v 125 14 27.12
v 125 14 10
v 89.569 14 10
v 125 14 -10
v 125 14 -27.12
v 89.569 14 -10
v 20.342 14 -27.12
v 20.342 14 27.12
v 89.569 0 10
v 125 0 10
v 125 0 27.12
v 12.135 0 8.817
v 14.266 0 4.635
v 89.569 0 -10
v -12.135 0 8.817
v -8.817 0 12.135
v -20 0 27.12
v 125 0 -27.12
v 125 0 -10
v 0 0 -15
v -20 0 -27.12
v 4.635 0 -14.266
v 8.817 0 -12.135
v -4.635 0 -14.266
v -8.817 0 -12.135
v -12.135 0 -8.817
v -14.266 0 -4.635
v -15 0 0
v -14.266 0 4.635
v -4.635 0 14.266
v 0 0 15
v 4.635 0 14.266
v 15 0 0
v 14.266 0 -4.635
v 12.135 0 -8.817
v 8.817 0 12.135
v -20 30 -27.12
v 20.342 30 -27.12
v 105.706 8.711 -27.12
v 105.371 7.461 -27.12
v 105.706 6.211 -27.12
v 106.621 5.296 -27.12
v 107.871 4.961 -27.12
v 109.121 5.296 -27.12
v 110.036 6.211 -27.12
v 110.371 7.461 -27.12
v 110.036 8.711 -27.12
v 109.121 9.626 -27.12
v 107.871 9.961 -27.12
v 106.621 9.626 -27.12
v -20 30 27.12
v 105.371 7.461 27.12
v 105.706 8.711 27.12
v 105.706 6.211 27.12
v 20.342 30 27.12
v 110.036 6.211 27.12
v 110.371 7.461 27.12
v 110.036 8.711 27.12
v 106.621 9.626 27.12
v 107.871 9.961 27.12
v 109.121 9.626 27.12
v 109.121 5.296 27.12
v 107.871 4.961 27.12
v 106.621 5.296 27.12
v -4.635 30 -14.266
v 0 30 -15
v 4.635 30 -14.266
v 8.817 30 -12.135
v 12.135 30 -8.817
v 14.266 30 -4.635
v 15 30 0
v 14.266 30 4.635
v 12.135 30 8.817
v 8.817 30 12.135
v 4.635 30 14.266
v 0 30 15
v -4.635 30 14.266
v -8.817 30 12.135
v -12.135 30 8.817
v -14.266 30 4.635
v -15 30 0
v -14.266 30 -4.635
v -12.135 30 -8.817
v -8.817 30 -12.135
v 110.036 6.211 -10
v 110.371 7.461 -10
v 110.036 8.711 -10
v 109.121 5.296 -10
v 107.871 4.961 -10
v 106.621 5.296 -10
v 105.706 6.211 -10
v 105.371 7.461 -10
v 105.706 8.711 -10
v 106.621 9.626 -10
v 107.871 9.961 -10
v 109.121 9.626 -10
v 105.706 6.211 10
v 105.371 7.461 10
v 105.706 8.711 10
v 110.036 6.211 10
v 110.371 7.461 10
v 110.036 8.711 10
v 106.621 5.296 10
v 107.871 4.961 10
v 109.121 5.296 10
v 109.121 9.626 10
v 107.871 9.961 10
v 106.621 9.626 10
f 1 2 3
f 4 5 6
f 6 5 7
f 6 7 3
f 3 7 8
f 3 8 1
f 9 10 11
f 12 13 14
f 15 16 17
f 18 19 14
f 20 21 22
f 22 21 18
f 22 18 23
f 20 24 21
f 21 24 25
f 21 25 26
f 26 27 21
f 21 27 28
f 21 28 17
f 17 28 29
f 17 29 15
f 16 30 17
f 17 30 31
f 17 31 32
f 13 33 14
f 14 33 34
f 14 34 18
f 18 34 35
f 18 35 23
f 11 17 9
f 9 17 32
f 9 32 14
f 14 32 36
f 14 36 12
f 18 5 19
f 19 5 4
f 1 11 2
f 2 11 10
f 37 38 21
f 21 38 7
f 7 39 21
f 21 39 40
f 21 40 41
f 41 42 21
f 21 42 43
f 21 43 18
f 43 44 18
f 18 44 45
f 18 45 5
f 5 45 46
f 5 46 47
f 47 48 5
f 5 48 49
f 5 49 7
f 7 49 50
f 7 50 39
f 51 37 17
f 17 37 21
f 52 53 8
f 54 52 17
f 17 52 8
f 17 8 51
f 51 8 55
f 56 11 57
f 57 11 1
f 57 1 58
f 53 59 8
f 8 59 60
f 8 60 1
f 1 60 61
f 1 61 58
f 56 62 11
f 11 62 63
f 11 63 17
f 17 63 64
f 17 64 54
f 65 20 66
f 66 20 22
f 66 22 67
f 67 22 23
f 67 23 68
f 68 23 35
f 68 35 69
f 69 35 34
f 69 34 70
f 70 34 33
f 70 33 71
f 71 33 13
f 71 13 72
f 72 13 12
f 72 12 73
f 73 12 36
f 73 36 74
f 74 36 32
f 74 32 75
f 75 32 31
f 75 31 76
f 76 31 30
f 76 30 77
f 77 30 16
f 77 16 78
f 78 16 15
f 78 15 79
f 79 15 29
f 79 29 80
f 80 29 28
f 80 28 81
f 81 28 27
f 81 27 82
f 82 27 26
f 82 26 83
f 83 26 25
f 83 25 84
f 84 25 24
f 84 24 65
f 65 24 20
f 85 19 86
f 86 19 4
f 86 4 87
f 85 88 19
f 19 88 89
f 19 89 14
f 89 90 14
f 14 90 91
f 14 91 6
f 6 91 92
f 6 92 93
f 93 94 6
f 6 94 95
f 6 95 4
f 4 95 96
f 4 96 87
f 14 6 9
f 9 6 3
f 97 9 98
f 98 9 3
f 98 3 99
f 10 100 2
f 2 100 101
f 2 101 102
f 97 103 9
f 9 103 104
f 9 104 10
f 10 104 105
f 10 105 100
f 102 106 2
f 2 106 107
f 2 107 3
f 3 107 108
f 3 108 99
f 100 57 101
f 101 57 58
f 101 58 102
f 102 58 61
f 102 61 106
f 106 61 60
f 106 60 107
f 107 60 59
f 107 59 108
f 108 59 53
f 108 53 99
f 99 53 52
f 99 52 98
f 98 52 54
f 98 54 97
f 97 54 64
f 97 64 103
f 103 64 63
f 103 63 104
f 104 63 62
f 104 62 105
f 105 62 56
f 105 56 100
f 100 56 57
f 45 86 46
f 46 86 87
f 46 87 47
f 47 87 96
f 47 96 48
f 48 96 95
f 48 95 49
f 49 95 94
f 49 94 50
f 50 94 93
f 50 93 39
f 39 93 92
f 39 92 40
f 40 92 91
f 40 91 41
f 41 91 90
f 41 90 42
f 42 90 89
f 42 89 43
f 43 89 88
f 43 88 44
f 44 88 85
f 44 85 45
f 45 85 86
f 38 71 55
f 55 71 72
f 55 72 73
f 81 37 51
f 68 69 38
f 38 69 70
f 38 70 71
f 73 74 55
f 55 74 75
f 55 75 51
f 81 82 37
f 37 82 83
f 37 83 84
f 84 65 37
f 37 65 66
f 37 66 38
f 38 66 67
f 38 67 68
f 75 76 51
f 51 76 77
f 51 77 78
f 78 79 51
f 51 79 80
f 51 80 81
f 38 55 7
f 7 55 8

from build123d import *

# Parameters (mm, degrees)
SKETCH_1_W          = 145
SKETCH_1_H          = 54.239140964
SKETCH_1_R          = 15
EXTRUDE_1_DEPTH     = 14
SKETCH_2_W          = 40.973545211
SKETCH_2_H          = 20
CUT_EXTRUDE_1_DEPTH = 50
SKETCH_3_R          = 2.5
CUT_EXTRUDE_2_DEPTH = 36
SKETCH_4_W          = 40.34248958
SKETCH_4_H          = 54.239140964
SKETCH_4_R          = 15
EXTRUDE_2_DEPTH     = 16


with BuildPart() as part:
    # Эскиз1 → Вытянуть1 (new body)
    with BuildSketch(Plane(origin=(0, 0, 0), x_dir=(1, 0, 0), z_dir=(0, 1, 0))):
        with Locations((52.5, 0)):
            Rectangle(SKETCH_1_W, SKETCH_1_H)
        with Locations(Location((0, 0, 0), (0, 0, 270))):
            Circle(SKETCH_1_R, mode=Mode.SUBTRACT)
    extrude(amount=EXTRUDE_1_DEPTH)

    # Эскиз2 → Вырез-Вытянуть1 (cut)
    with BuildSketch(Plane(origin=(0, 0, 0), x_dir=(1, 0, 0), z_dir=(0, 1, 0))):
        with Locations((110.055787262, 0)):
            Rectangle(SKETCH_2_W, SKETCH_2_H)
    extrude(amount=CUT_EXTRUDE_1_DEPTH, mode=Mode.SUBTRACT)

    # Эскиз3 → Вырез-Вытянуть2 (cut, symmetric)
    with BuildSketch(Plane.XY):
        with Locations(Location((107.871367235, 7.461129595, 0), (0, 0, 180))):
            Circle(SKETCH_3_R)
    extrude(amount=CUT_EXTRUDE_2_DEPTH, both=True, mode=Mode.SUBTRACT)

    # Эскиз4 → Вытянуть2 (add)
    with BuildSketch(Plane(origin=(0, 14, 0), x_dir=(1, 0, 0), z_dir=(0, 1, 0))):
        with Locations((0.17124479, 0)):
            Rectangle(SKETCH_4_W, SKETCH_4_H)
        with Locations(Location((0, 0, 0), (0, 0, 270))):
            Circle(SKETCH_4_R, mode=Mode.SUBTRACT)
    extrude(amount=EXTRUDE_2_DEPTH)


solid = part.part
